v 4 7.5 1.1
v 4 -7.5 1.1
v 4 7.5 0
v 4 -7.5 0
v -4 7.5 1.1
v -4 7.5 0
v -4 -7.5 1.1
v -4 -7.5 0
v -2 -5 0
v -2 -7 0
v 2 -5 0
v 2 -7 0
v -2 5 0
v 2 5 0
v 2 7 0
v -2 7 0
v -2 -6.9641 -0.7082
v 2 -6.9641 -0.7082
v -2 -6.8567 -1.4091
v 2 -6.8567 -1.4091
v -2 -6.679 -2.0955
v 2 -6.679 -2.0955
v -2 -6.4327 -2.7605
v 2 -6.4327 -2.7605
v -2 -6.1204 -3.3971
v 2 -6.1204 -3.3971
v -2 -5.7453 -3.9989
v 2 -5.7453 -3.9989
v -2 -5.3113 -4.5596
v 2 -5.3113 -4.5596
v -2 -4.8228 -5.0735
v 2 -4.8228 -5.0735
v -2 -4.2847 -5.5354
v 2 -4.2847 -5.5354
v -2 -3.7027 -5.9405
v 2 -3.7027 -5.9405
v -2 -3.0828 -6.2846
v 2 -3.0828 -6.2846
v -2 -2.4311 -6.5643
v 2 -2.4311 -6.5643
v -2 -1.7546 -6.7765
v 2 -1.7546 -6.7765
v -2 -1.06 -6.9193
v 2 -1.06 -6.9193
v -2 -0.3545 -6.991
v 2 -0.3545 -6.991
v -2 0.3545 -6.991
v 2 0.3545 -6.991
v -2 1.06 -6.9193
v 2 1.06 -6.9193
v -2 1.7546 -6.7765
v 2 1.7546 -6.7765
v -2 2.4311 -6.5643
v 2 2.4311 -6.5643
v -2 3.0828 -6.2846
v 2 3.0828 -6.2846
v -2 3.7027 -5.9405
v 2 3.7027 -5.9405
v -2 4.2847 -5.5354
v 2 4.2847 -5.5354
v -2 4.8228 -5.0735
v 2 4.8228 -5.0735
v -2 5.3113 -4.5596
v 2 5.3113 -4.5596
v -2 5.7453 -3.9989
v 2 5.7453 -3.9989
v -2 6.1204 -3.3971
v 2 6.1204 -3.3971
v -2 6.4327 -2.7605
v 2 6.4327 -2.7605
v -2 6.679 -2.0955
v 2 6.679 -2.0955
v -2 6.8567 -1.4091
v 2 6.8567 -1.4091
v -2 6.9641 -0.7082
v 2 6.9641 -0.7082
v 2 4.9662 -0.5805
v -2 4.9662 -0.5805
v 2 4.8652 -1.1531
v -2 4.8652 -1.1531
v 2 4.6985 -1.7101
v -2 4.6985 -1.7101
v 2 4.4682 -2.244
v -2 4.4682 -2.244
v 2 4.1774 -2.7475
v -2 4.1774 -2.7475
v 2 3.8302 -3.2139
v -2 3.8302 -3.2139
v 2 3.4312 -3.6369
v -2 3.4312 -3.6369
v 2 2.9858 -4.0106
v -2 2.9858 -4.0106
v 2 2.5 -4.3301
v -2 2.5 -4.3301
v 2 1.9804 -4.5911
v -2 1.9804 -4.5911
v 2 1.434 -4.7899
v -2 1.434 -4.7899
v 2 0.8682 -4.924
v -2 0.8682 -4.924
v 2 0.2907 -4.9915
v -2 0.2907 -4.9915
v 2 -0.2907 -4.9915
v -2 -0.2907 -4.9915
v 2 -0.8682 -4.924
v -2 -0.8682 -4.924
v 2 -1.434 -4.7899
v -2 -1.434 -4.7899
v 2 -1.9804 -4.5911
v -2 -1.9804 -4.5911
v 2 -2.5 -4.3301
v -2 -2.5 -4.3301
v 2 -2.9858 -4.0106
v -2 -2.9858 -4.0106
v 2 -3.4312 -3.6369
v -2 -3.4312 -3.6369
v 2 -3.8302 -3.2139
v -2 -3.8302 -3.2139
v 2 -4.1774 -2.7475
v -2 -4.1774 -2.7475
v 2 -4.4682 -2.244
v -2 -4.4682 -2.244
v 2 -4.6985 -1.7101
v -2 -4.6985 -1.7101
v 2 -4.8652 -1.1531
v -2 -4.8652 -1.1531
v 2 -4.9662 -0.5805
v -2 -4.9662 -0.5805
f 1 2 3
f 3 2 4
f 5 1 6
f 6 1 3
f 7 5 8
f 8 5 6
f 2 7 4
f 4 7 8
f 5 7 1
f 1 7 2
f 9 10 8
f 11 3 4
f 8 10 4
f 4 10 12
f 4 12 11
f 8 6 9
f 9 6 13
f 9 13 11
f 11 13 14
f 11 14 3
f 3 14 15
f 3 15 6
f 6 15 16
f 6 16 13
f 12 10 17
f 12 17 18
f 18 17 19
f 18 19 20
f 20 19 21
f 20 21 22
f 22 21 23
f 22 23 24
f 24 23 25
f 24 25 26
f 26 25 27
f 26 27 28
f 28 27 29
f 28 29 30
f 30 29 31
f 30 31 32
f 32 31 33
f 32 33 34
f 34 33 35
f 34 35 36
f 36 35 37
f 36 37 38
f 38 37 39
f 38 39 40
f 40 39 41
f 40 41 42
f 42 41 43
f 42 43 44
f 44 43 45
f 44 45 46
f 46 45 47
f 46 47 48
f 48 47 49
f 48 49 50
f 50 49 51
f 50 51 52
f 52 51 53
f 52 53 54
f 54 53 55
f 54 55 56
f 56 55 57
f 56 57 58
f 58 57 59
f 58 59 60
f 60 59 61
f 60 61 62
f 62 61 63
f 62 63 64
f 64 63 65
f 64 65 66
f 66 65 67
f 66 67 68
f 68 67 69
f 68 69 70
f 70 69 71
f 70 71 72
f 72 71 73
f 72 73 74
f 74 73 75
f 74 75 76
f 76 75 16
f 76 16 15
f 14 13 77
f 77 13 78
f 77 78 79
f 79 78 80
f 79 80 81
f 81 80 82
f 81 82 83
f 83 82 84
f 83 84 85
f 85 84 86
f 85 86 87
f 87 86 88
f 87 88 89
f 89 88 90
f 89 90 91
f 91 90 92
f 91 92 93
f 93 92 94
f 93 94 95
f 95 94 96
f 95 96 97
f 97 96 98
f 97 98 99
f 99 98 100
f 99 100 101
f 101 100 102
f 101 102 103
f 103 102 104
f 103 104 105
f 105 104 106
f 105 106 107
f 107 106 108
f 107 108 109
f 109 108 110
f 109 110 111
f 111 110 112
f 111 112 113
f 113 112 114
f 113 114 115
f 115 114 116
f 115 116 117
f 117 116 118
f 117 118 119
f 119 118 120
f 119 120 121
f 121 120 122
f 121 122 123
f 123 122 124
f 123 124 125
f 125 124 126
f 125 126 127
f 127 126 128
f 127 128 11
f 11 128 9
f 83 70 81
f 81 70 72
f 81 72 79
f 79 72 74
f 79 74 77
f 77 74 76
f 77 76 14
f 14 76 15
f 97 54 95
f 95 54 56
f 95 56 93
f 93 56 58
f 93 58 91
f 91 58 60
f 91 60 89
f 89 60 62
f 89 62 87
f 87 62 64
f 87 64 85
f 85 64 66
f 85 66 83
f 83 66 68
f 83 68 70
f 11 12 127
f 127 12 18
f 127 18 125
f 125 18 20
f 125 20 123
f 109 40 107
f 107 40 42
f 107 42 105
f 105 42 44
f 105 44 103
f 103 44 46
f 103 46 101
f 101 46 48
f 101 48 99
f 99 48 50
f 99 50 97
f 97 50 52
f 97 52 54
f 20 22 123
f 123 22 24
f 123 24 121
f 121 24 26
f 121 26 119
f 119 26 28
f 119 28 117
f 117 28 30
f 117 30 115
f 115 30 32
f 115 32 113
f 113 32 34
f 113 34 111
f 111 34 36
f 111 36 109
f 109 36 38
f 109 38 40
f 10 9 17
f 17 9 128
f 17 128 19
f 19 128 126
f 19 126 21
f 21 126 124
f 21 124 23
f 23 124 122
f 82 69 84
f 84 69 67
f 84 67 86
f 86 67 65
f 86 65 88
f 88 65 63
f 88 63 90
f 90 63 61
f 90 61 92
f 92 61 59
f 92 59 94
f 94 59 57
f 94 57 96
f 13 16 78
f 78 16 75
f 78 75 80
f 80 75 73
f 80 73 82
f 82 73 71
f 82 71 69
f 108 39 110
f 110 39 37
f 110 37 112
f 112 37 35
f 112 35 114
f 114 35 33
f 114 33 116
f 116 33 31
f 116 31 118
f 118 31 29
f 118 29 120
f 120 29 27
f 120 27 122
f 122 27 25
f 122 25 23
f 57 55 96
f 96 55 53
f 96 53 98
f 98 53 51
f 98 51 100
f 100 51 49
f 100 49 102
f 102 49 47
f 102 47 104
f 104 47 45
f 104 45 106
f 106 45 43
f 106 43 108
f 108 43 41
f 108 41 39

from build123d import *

# Parameters (mm, degrees)
CROQUIS1_W              = 8
CROQUIS1_H              = 15
SALIENTE_EXTRUIR6_DEPTH = 1.1
SALIENTE_EXTRUIR7_DEPTH = 2


with BuildPart() as part:
    # Croquis1 → Saliente-Extruir6 (new body)
    with BuildSketch(Plane.XY):
        Rectangle(CROQUIS1_W, CROQUIS1_H)
    extrude(amount=SALIENTE_EXTRUIR6_DEPTH)

    # Croquis8 → Saliente-Extruir7 (add, symmetric)
    with BuildSketch(Plane(origin=(0, 0, 0), x_dir=(0, 0, -1), z_dir=(1, 0, 0))):
        with BuildLine():
            Line((0, 7), (0, 5))
            ThreePointArc((0, 5), (5, 0), (0, -5))
            Line((0, -5), (0, -7))
            ThreePointArc((0, -7), (7, 0), (0, 7))
        make_face()
    extrude(amount=SALIENTE_EXTRUIR7_DEPTH, both=True)


solid = part.part
